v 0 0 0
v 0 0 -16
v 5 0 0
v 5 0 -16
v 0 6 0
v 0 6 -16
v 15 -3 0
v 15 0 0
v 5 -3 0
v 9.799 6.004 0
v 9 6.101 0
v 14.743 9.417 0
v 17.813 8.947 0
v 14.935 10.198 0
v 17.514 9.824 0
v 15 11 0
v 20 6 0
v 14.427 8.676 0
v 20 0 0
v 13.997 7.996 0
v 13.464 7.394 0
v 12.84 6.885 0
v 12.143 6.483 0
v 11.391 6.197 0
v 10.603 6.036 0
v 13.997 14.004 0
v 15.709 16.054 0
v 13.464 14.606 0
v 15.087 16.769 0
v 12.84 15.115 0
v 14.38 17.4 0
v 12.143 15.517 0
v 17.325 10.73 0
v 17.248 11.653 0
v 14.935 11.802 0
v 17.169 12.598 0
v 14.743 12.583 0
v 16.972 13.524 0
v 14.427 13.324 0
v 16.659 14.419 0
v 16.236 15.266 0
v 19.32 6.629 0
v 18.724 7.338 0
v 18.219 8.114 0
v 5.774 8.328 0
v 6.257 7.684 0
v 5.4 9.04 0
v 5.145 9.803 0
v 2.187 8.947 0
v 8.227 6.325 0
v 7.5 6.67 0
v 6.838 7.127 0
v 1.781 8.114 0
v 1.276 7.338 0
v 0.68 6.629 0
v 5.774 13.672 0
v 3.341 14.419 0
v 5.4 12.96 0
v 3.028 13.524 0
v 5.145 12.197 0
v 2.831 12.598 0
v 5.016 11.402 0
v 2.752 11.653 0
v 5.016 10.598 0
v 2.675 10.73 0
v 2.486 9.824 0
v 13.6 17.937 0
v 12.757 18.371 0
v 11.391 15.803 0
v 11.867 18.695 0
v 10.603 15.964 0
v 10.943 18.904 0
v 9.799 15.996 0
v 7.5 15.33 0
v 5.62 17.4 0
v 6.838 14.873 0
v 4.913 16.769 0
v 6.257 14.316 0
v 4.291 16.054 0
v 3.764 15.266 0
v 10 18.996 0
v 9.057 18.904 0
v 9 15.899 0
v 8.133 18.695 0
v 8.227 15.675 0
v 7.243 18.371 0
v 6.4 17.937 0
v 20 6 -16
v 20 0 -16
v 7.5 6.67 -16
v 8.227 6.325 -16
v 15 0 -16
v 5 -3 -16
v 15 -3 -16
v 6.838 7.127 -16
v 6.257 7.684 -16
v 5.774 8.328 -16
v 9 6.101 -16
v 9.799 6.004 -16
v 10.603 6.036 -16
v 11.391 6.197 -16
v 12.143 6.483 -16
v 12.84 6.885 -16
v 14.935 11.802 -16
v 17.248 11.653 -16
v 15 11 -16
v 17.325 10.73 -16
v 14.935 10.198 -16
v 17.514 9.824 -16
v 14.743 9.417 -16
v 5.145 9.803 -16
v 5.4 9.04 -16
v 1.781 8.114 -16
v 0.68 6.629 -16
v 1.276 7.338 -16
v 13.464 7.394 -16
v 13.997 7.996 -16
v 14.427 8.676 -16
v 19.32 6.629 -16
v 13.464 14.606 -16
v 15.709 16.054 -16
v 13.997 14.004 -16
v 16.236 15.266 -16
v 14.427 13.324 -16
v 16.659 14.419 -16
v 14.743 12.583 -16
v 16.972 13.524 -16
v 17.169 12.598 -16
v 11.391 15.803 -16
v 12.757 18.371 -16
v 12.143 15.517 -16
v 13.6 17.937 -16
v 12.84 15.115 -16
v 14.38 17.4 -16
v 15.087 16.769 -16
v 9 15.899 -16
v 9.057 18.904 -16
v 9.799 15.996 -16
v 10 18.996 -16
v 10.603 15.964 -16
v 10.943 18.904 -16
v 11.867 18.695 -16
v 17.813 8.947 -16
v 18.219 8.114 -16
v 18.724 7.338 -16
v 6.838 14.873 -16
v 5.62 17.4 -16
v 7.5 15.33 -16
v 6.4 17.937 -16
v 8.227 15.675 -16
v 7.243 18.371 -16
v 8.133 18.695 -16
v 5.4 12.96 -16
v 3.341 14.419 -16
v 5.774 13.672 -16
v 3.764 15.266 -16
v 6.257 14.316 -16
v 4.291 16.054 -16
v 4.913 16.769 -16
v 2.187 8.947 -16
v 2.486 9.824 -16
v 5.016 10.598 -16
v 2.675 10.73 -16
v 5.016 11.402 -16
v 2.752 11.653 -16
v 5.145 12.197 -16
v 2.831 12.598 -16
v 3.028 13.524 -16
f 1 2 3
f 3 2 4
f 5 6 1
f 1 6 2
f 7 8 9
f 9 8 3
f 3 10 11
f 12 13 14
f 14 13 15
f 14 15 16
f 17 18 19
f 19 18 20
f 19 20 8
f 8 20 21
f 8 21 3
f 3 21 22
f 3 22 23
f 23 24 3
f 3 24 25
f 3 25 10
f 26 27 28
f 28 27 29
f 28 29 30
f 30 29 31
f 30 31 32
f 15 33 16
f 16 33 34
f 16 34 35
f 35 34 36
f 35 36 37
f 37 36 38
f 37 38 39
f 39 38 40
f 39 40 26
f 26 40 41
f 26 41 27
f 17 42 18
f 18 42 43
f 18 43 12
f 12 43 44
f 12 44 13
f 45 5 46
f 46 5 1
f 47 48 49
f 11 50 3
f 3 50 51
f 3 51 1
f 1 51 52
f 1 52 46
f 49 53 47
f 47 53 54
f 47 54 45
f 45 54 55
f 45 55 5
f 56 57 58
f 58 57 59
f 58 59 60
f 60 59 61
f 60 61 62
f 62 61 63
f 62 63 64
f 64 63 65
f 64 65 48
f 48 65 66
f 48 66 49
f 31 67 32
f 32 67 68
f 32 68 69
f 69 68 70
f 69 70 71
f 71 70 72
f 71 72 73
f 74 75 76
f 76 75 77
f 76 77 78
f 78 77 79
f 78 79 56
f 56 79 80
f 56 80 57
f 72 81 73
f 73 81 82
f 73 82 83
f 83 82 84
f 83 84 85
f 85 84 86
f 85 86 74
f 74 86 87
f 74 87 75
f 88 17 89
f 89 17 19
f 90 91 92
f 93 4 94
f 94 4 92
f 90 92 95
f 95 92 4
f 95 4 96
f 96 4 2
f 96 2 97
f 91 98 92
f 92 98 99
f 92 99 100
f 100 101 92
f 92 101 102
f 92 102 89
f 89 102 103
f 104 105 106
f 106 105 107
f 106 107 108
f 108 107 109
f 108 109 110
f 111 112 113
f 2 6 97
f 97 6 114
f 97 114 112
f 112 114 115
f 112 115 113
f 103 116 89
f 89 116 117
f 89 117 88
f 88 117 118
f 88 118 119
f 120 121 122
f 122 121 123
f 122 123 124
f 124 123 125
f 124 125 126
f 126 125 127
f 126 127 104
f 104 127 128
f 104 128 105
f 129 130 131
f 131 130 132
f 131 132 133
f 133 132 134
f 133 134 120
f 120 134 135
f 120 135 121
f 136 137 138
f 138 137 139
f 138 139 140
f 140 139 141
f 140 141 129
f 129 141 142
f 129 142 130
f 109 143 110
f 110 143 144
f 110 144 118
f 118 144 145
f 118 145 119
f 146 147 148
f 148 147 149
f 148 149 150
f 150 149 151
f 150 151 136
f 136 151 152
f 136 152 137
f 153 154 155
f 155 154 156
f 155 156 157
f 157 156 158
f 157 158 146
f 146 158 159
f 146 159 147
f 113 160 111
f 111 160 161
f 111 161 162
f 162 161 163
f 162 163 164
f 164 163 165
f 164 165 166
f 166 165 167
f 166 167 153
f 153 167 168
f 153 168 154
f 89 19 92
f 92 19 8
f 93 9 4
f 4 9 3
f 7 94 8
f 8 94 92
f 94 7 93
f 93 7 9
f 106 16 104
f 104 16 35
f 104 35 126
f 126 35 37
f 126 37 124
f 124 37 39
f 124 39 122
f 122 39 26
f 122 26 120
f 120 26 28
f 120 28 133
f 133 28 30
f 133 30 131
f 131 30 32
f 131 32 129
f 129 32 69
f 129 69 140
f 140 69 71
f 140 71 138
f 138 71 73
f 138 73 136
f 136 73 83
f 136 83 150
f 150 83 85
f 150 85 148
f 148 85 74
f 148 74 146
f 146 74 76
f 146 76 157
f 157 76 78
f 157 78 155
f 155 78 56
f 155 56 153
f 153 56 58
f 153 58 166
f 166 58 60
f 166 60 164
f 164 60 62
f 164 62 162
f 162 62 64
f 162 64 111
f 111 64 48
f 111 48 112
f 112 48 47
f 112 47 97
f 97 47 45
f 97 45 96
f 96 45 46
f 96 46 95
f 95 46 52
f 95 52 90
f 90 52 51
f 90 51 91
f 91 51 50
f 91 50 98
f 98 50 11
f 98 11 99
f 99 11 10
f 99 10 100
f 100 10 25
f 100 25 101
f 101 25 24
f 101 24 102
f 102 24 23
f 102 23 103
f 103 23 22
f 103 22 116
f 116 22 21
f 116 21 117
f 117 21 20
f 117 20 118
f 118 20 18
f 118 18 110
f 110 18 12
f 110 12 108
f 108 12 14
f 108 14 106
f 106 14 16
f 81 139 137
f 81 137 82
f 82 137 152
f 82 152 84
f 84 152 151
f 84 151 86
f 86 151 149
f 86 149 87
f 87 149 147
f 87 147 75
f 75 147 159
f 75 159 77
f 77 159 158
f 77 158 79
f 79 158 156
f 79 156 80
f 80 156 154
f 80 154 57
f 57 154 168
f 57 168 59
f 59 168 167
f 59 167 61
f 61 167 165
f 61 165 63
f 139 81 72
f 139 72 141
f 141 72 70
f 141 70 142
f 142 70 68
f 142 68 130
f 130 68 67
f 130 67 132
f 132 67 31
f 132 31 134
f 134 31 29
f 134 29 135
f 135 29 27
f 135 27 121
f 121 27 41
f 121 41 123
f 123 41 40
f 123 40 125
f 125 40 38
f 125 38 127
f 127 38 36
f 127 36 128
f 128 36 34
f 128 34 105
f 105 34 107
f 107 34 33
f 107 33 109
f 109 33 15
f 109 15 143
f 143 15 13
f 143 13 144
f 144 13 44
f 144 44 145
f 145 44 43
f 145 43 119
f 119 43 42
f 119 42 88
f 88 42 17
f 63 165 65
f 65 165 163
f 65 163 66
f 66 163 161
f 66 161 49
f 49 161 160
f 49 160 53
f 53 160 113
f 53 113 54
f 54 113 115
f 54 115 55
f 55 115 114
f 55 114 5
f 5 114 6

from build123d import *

# Parameters (mm, degrees)
SKETCH6_W           = 20
SKETCH6_H           = 16
BOSS_EXTRUDE5_DEPTH = 6
SKETCH7_W           = 10
SKETCH7_H           = 16
BOSS_EXTRUDE6_DEPTH = 3
SKETCH8_W           = 14.5
SKETCH8_H           = 16
BOSS_EXTRUDE7_DEPTH = 13
SKETCH9_R           = 5
CUT_EXTRUDE1_DEPTH  = 32.890437438
FILLET1_R           = 7.5
FILLET2_R           = 7.5


with BuildPart() as part:
    # Sketch6 → Boss-Extrude5 (new body)
    with BuildSketch(Plane(origin=(0, 0, 0), x_dir=(1, 0, 0), z_dir=(0, 1, 0))):
        with Locations((10, 8)):
            Rectangle(SKETCH6_W, SKETCH6_H)
    extrude(amount=BOSS_EXTRUDE5_DEPTH)

    # Sketch7 → Boss-Extrude6 (add)
    with BuildSketch(Plane.XZ):
        with Locations((10, -8)):
            Rectangle(SKETCH7_W, SKETCH7_H)
    extrude(amount=BOSS_EXTRUDE6_DEPTH)

    # Sketch8 → Boss-Extrude7 (add)
    with BuildSketch(Plane(origin=(0, 6, 0), x_dir=(1, 0, 0), z_dir=(0, 1, 0))):
        with Locations((10, 8)):
            Rectangle(SKETCH8_W, SKETCH8_H)
    extrude(amount=BOSS_EXTRUDE7_DEPTH)

    # Sketch9 → Cut-Extrude1 (cut, through all)
    with BuildSketch(Plane.XY):
        with Locations((10, 11)):
            Circle(SKETCH9_R)
    extrude(amount=-CUT_EXTRUDE1_DEPTH, mode=Mode.SUBTRACT)

    # Fillet1
    # the kernel refuses this fillet: 7.5 mm, written as the material it takes off along each edge
    with BuildSketch(Plane(origin=(17.25, 19, -34.75), x_dir=(-1, 0, 0), z_dir=(0, 0, 1))) as fillet1_piece_1:
        with BuildLine():
            CenterArc((FILLET1_R, FILLET1_R), FILLET1_R, 180, 90)
            Line((0, FILLET1_R), (0, 0))
            Line((0, 0), (FILLET1_R, 0))
        make_face()
    extrude(amount=53.5, mode=Mode.SUBTRACT)
    with BuildSketch(Plane(origin=(2.75, 19, 18.75), x_dir=(0, -1, 0), z_dir=(0, 0, -1))) as fillet1_piece_2:
        with BuildLine():
            CenterArc((FILLET1_R, -FILLET1_R), FILLET1_R, 90, 90)
            Line((0, -FILLET1_R), (0, 0))
            Line((0, 0), (FILLET1_R, 0))
        make_face()
    extrude(amount=53.5, mode=Mode.SUBTRACT)

    # Fillet2
    # the kernel refuses this fillet: 7.5 mm, written as the material it adds along each edge
    with BuildSketch(Plane(origin=(17.25, 6, -16), x_dir=(1, 0, 0), z_dir=(0, 0, 1))) as fillet2_piece_1:
        with BuildLine():
            CenterArc((7.496865043, 5.806657581), FILLET2_R, 181.171427285, 49.563032728)
            Line((-0.001567478, 5.65332879), (-0.75141073, 5.637995911))
            ThreePointArc((-0.75141073, 5.637995911), (-0.75, 5.5), (-0.75, 0))
            Line((-0.75, 0), (0, -0.75))
            ThreePointArc((0, -0.75), (1.375, -0.75), (2.275313496, -0.580665758))
            Line((2.275313496, -0.580665758), (2.75, 0))
        make_face()
    extrude(amount=16)
    with BuildSketch(Plane(origin=(2.75, 6, 0), x_dir=(0.00027726642617420565, 0.9999999615616638, 0), z_dir=(0, 0, -1))) as fillet2_piece_2:
        with BuildLine():
            CenterArc((5.804578729, -7.498474746), FILLET2_R, 91.155541089, 49.563032728)
            Line((-0.000762483, -2.749999894), (-0.581296604, -2.275152409))
            ThreePointArc((-0.581296604, -2.275152409), (-0.750381213, -1.374791997), (-0.749999971, 0.00020795))
            Line((-0.749999971, 0.00020795), (0.00020795, 0.749999971))
            ThreePointArc((0.00020795, 0.749999971), (5.500207738, 0.748475006), (5.638204036, 0.749847475))
            Line((5.638204036, 0.749847475), (5.653329008, 0))
        make_face()
    extrude(amount=16)


solid = part.part
